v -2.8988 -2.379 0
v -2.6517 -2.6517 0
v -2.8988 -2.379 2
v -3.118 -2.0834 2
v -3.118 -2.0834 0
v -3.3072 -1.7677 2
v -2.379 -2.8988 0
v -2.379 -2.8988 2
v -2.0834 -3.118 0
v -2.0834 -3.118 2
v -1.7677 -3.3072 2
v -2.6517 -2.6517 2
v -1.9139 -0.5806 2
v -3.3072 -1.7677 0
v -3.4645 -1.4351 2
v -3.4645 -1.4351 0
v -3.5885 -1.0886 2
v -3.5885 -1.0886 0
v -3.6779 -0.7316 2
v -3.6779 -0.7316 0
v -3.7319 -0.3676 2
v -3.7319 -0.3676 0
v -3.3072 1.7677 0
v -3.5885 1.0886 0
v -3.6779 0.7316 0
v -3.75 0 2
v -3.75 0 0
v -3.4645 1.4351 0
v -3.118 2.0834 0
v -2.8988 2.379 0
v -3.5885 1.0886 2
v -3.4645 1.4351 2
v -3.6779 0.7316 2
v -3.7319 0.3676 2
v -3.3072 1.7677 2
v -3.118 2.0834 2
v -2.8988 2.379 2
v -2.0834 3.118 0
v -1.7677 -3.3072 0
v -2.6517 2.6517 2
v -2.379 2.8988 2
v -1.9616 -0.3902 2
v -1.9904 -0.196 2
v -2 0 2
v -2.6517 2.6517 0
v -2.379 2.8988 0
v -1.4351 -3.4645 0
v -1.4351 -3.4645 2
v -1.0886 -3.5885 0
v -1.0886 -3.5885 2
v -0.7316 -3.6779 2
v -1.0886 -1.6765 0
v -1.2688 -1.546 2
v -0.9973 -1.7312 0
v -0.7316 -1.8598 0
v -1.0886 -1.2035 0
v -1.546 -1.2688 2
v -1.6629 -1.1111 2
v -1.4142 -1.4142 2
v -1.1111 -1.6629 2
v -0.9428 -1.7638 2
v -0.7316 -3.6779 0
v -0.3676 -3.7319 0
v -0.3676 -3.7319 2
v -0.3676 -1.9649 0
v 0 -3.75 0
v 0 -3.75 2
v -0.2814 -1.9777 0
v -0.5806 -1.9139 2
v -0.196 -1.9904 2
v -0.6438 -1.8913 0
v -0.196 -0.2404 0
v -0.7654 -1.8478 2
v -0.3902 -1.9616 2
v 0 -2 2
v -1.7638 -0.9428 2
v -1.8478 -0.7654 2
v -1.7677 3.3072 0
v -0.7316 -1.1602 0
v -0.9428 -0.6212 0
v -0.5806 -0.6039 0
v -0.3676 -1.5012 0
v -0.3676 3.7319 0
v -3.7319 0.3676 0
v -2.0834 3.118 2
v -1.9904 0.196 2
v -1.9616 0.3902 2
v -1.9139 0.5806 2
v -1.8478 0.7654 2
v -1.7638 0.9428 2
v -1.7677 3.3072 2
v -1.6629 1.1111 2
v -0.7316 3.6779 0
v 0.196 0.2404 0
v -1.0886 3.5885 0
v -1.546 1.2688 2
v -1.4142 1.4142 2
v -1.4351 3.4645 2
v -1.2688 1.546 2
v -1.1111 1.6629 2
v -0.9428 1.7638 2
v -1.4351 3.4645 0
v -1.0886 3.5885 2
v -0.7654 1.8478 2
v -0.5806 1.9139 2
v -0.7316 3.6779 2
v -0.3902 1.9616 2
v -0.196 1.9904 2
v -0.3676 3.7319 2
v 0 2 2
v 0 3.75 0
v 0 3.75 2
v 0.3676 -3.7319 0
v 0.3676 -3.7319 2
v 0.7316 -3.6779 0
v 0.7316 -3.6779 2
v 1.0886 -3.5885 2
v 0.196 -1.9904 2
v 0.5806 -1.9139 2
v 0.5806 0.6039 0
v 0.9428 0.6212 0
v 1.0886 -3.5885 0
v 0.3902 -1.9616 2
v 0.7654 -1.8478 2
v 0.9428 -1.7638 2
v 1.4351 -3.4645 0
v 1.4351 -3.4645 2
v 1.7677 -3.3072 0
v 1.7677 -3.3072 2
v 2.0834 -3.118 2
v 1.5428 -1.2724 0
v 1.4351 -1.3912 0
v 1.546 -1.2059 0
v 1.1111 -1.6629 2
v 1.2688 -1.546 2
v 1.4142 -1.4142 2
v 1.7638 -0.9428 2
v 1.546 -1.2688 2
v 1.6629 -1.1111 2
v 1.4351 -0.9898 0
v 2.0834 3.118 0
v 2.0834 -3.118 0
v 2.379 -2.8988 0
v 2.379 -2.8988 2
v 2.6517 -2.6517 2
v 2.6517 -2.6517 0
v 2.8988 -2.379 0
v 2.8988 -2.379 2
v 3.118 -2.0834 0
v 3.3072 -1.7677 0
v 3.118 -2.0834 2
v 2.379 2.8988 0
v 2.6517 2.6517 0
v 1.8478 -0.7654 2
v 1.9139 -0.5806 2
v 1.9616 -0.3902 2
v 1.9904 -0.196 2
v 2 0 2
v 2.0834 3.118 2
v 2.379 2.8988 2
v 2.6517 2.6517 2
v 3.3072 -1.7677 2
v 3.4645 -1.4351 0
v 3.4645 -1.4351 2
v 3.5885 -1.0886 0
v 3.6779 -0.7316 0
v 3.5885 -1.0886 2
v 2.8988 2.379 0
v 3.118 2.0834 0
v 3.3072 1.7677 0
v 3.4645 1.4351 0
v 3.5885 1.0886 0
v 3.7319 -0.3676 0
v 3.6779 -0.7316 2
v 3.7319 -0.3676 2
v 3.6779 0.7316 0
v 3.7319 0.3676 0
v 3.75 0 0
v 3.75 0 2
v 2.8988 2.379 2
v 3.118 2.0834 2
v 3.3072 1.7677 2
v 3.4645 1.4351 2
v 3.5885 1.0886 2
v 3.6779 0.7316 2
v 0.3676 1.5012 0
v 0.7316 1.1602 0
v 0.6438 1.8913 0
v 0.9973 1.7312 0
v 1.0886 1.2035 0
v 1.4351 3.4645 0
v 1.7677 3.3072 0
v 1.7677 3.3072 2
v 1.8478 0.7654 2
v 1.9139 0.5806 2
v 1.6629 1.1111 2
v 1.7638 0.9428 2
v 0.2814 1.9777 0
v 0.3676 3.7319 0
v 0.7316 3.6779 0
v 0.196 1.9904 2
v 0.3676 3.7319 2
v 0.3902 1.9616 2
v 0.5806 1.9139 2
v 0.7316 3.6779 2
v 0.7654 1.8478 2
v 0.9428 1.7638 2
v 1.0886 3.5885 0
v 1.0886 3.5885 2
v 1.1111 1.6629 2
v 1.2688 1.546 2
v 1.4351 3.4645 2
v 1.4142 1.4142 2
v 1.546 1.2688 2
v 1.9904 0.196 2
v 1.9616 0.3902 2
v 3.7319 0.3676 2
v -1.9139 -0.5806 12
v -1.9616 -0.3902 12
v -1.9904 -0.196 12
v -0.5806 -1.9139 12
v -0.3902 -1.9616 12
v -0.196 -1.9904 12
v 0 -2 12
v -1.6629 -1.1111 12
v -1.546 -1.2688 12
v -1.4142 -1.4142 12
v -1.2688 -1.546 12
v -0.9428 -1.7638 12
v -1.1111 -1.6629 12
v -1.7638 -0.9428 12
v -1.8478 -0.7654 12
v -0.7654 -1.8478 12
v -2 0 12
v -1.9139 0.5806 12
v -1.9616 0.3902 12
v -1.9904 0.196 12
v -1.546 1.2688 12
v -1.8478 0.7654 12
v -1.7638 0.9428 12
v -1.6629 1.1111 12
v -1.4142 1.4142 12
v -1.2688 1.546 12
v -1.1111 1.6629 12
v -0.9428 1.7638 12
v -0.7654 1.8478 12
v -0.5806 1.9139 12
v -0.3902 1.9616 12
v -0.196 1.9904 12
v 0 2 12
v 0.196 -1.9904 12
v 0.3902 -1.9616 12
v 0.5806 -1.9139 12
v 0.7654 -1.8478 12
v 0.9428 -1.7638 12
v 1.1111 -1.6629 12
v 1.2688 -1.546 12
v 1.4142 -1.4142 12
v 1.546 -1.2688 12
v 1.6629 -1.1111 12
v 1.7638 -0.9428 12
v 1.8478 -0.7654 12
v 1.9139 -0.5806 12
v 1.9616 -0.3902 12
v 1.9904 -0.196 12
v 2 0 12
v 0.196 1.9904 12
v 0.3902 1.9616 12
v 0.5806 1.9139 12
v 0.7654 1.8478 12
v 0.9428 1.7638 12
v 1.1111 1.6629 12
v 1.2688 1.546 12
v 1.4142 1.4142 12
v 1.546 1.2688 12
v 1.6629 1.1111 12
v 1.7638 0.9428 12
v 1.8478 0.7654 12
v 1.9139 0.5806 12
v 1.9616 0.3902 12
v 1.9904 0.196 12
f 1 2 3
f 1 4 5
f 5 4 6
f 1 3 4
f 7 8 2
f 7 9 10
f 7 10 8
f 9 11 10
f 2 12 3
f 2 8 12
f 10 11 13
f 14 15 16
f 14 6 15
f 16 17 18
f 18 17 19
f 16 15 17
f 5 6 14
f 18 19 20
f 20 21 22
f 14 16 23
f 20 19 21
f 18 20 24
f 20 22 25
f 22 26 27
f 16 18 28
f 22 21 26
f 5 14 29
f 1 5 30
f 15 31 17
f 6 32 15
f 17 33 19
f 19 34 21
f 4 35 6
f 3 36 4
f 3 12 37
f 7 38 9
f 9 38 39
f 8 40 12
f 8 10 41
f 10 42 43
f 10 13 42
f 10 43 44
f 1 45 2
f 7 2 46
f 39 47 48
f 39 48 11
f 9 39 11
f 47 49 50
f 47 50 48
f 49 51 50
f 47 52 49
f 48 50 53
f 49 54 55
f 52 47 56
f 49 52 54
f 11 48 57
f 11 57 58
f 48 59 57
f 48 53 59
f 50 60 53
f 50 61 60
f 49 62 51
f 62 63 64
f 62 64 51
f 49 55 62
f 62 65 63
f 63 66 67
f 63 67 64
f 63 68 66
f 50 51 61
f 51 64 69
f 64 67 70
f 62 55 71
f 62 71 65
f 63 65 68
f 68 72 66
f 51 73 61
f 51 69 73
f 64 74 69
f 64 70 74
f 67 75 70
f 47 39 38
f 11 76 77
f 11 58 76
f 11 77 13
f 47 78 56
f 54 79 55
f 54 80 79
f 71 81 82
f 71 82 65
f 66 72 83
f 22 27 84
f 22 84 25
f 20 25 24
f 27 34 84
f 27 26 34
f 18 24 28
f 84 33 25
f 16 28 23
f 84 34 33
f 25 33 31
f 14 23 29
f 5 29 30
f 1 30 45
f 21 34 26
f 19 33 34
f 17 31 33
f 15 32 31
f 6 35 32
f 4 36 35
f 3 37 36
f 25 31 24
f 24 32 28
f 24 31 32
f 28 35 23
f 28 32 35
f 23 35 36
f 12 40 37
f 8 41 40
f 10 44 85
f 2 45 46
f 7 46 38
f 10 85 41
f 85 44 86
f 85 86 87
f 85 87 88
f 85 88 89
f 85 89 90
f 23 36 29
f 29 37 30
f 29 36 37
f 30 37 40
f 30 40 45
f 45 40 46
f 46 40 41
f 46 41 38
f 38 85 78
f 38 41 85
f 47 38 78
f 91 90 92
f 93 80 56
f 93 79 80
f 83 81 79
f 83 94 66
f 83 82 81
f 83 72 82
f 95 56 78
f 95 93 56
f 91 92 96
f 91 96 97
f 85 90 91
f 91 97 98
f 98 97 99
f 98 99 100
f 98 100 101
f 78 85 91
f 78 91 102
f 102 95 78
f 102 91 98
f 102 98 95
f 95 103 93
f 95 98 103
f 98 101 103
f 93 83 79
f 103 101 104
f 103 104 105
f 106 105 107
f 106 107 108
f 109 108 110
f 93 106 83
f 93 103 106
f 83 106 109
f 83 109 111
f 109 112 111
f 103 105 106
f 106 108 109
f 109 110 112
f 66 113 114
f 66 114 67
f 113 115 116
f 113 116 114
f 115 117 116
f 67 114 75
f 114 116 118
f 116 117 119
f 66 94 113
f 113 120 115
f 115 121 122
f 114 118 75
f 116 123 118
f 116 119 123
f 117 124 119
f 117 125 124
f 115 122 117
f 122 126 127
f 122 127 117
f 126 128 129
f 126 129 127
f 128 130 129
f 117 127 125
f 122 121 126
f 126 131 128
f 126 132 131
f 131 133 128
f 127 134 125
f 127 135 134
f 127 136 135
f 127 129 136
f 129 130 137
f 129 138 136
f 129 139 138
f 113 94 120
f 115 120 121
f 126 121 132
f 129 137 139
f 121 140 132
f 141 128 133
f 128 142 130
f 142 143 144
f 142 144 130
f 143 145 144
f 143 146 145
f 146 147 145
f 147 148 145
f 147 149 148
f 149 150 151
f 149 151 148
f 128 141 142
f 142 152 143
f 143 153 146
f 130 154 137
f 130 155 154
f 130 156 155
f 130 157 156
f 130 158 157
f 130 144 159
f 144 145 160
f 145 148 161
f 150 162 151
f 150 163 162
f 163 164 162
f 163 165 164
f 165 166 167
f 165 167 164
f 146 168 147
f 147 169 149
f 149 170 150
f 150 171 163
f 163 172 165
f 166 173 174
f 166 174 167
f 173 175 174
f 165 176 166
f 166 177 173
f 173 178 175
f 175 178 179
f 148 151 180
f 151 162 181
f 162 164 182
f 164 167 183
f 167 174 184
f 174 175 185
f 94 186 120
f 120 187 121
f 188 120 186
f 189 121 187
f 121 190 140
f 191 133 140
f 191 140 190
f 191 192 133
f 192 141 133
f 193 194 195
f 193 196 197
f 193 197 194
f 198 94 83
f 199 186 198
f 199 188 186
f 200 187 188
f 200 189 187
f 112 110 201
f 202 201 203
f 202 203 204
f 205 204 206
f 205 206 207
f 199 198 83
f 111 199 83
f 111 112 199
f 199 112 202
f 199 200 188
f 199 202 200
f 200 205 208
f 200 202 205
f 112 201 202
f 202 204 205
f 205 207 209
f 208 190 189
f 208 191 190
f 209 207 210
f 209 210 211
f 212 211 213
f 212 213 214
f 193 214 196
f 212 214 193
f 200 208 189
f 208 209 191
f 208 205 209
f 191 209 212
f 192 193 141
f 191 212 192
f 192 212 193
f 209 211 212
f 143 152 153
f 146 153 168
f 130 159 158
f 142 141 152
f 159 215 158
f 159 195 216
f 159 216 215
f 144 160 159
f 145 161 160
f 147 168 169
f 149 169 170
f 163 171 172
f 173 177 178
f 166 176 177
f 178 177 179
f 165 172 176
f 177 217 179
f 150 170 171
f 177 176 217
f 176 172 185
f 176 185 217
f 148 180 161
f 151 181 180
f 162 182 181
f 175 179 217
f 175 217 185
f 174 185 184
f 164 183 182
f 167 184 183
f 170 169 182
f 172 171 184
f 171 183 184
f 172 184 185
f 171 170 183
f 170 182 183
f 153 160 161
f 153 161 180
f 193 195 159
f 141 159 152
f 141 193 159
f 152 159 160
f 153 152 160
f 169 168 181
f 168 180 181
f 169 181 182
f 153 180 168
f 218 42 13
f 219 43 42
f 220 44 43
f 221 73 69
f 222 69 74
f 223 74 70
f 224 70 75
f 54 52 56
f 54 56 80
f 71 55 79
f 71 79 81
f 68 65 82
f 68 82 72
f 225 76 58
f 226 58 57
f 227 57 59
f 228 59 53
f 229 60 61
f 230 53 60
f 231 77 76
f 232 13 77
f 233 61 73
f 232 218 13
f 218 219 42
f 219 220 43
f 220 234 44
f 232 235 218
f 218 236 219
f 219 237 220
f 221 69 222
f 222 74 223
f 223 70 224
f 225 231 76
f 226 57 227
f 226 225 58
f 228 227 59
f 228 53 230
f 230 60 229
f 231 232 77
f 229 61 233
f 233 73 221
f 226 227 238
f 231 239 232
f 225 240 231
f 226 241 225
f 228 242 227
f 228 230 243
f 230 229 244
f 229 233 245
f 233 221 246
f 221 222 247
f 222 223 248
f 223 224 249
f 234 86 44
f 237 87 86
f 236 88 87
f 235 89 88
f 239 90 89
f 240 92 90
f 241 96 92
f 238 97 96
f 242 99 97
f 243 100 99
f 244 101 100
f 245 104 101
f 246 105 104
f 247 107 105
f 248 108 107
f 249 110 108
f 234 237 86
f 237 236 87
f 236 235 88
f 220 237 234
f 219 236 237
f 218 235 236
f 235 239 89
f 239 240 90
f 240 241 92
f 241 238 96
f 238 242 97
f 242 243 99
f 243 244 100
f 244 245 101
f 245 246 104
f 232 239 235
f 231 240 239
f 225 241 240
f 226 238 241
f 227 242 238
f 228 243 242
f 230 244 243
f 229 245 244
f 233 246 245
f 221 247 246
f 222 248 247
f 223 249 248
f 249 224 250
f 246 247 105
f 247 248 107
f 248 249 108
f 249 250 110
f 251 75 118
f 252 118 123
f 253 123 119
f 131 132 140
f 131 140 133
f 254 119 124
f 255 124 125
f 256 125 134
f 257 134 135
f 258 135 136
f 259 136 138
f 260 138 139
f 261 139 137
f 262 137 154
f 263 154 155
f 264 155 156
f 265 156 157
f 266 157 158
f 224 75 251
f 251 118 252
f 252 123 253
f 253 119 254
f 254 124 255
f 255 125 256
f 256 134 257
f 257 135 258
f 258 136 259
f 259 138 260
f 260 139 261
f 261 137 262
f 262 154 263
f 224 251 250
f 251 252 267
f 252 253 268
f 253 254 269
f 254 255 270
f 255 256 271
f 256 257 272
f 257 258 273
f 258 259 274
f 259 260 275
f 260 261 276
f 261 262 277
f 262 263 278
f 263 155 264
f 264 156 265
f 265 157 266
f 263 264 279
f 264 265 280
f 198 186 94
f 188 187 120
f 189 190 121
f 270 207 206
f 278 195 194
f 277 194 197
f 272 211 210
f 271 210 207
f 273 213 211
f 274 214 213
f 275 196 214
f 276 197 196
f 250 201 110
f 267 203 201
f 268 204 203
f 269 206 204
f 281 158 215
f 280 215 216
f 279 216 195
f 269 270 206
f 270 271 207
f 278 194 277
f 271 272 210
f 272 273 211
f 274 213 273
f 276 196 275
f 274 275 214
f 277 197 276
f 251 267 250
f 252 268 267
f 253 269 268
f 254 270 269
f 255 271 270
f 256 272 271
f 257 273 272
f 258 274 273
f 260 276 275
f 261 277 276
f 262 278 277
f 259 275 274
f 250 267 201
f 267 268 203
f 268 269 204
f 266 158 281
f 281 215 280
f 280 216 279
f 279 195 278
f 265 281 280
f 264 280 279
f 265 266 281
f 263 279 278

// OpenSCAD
// file: common.scad
// cablemess: shared parameters (mm). Every part includes this file.
// Change a number here and every part follows; rebuild with ../build.sh.
$fn = 64;
eps = 0.01;

// --- trays (one cable each) -------------------------------------------------
page_t     = 20;    // stacking pitch: one tray, floor to floor
plate_t    = 3;     // tray floor
clear_z    = 0.8;   // air gap between trays (walls stop this short of the next floor)
tray       = 160;   // trays are square; 160 fits a 220 mm bed with room to spare
corner_r   = 12;

// --- spine ------------------------------------------------------------------
rod_d      = 8;     // M8 studding, cut to length: N * page_t + 8 (base) + ~55 (handle)
rod_fit    = 0.4;   // hole = rod_d + rod_fit
nut_af     = 13;    // M8 nut across flats
nut_t      = 6.8;   // M8 nut thickness (+ a little)
nut_fit    = 0.4;

// --- cable winding (three posts: peg, centre boss, peg, all the same diameter) --
boss_d     = 26;    // centre boss = tray spacer = the middle post
peg_d      = 26;
peg_dx     = 47;    // peg centres sit this far either side of the middle
cap_flare  = 6;     // cap is this much wider than the peg (45 degree cone, prints without support)
cap_cone   = 3;
cap_flat   = 1.2;

// --- connector holders (top/back edge) -----------------------------------------
holder_w   = 40;
holder_y   = 110;   // front of the holder block
holder_dx  = 30;    // holder centres sit this far either side of the middle
conn_w     = 22;    // pocket for the plug: USB-A/C, micro, HDMI. Test with the coupon.
neck_w     = 8;     // slot the cable leaves through

// --- length marker (front face) -------------------------------------------------
front_wall = 14;
pin_d      = 4;     // marker pin shaft
pin_fit    = 0.3;   // hole = pin_d + pin_fit
mark_x0    = 16;
mark_pitch = 8;
mark_n     = 12;    // 12 holes x 25 cm = up to 3 m
mark_cm    = 25;

module outline(s = tray, r = corner_r) offset(r = r) offset(delta = -r) square(s);
mid = tray / 2;
// main file
// Length marker pin: push it into the hole under the length on the tray's front face. One colour per cable type.
include <common.scad>
cylinder(d = 7.5, h = 2);
cylinder(d = pin_d, h = 2 + front_wall - 4);
